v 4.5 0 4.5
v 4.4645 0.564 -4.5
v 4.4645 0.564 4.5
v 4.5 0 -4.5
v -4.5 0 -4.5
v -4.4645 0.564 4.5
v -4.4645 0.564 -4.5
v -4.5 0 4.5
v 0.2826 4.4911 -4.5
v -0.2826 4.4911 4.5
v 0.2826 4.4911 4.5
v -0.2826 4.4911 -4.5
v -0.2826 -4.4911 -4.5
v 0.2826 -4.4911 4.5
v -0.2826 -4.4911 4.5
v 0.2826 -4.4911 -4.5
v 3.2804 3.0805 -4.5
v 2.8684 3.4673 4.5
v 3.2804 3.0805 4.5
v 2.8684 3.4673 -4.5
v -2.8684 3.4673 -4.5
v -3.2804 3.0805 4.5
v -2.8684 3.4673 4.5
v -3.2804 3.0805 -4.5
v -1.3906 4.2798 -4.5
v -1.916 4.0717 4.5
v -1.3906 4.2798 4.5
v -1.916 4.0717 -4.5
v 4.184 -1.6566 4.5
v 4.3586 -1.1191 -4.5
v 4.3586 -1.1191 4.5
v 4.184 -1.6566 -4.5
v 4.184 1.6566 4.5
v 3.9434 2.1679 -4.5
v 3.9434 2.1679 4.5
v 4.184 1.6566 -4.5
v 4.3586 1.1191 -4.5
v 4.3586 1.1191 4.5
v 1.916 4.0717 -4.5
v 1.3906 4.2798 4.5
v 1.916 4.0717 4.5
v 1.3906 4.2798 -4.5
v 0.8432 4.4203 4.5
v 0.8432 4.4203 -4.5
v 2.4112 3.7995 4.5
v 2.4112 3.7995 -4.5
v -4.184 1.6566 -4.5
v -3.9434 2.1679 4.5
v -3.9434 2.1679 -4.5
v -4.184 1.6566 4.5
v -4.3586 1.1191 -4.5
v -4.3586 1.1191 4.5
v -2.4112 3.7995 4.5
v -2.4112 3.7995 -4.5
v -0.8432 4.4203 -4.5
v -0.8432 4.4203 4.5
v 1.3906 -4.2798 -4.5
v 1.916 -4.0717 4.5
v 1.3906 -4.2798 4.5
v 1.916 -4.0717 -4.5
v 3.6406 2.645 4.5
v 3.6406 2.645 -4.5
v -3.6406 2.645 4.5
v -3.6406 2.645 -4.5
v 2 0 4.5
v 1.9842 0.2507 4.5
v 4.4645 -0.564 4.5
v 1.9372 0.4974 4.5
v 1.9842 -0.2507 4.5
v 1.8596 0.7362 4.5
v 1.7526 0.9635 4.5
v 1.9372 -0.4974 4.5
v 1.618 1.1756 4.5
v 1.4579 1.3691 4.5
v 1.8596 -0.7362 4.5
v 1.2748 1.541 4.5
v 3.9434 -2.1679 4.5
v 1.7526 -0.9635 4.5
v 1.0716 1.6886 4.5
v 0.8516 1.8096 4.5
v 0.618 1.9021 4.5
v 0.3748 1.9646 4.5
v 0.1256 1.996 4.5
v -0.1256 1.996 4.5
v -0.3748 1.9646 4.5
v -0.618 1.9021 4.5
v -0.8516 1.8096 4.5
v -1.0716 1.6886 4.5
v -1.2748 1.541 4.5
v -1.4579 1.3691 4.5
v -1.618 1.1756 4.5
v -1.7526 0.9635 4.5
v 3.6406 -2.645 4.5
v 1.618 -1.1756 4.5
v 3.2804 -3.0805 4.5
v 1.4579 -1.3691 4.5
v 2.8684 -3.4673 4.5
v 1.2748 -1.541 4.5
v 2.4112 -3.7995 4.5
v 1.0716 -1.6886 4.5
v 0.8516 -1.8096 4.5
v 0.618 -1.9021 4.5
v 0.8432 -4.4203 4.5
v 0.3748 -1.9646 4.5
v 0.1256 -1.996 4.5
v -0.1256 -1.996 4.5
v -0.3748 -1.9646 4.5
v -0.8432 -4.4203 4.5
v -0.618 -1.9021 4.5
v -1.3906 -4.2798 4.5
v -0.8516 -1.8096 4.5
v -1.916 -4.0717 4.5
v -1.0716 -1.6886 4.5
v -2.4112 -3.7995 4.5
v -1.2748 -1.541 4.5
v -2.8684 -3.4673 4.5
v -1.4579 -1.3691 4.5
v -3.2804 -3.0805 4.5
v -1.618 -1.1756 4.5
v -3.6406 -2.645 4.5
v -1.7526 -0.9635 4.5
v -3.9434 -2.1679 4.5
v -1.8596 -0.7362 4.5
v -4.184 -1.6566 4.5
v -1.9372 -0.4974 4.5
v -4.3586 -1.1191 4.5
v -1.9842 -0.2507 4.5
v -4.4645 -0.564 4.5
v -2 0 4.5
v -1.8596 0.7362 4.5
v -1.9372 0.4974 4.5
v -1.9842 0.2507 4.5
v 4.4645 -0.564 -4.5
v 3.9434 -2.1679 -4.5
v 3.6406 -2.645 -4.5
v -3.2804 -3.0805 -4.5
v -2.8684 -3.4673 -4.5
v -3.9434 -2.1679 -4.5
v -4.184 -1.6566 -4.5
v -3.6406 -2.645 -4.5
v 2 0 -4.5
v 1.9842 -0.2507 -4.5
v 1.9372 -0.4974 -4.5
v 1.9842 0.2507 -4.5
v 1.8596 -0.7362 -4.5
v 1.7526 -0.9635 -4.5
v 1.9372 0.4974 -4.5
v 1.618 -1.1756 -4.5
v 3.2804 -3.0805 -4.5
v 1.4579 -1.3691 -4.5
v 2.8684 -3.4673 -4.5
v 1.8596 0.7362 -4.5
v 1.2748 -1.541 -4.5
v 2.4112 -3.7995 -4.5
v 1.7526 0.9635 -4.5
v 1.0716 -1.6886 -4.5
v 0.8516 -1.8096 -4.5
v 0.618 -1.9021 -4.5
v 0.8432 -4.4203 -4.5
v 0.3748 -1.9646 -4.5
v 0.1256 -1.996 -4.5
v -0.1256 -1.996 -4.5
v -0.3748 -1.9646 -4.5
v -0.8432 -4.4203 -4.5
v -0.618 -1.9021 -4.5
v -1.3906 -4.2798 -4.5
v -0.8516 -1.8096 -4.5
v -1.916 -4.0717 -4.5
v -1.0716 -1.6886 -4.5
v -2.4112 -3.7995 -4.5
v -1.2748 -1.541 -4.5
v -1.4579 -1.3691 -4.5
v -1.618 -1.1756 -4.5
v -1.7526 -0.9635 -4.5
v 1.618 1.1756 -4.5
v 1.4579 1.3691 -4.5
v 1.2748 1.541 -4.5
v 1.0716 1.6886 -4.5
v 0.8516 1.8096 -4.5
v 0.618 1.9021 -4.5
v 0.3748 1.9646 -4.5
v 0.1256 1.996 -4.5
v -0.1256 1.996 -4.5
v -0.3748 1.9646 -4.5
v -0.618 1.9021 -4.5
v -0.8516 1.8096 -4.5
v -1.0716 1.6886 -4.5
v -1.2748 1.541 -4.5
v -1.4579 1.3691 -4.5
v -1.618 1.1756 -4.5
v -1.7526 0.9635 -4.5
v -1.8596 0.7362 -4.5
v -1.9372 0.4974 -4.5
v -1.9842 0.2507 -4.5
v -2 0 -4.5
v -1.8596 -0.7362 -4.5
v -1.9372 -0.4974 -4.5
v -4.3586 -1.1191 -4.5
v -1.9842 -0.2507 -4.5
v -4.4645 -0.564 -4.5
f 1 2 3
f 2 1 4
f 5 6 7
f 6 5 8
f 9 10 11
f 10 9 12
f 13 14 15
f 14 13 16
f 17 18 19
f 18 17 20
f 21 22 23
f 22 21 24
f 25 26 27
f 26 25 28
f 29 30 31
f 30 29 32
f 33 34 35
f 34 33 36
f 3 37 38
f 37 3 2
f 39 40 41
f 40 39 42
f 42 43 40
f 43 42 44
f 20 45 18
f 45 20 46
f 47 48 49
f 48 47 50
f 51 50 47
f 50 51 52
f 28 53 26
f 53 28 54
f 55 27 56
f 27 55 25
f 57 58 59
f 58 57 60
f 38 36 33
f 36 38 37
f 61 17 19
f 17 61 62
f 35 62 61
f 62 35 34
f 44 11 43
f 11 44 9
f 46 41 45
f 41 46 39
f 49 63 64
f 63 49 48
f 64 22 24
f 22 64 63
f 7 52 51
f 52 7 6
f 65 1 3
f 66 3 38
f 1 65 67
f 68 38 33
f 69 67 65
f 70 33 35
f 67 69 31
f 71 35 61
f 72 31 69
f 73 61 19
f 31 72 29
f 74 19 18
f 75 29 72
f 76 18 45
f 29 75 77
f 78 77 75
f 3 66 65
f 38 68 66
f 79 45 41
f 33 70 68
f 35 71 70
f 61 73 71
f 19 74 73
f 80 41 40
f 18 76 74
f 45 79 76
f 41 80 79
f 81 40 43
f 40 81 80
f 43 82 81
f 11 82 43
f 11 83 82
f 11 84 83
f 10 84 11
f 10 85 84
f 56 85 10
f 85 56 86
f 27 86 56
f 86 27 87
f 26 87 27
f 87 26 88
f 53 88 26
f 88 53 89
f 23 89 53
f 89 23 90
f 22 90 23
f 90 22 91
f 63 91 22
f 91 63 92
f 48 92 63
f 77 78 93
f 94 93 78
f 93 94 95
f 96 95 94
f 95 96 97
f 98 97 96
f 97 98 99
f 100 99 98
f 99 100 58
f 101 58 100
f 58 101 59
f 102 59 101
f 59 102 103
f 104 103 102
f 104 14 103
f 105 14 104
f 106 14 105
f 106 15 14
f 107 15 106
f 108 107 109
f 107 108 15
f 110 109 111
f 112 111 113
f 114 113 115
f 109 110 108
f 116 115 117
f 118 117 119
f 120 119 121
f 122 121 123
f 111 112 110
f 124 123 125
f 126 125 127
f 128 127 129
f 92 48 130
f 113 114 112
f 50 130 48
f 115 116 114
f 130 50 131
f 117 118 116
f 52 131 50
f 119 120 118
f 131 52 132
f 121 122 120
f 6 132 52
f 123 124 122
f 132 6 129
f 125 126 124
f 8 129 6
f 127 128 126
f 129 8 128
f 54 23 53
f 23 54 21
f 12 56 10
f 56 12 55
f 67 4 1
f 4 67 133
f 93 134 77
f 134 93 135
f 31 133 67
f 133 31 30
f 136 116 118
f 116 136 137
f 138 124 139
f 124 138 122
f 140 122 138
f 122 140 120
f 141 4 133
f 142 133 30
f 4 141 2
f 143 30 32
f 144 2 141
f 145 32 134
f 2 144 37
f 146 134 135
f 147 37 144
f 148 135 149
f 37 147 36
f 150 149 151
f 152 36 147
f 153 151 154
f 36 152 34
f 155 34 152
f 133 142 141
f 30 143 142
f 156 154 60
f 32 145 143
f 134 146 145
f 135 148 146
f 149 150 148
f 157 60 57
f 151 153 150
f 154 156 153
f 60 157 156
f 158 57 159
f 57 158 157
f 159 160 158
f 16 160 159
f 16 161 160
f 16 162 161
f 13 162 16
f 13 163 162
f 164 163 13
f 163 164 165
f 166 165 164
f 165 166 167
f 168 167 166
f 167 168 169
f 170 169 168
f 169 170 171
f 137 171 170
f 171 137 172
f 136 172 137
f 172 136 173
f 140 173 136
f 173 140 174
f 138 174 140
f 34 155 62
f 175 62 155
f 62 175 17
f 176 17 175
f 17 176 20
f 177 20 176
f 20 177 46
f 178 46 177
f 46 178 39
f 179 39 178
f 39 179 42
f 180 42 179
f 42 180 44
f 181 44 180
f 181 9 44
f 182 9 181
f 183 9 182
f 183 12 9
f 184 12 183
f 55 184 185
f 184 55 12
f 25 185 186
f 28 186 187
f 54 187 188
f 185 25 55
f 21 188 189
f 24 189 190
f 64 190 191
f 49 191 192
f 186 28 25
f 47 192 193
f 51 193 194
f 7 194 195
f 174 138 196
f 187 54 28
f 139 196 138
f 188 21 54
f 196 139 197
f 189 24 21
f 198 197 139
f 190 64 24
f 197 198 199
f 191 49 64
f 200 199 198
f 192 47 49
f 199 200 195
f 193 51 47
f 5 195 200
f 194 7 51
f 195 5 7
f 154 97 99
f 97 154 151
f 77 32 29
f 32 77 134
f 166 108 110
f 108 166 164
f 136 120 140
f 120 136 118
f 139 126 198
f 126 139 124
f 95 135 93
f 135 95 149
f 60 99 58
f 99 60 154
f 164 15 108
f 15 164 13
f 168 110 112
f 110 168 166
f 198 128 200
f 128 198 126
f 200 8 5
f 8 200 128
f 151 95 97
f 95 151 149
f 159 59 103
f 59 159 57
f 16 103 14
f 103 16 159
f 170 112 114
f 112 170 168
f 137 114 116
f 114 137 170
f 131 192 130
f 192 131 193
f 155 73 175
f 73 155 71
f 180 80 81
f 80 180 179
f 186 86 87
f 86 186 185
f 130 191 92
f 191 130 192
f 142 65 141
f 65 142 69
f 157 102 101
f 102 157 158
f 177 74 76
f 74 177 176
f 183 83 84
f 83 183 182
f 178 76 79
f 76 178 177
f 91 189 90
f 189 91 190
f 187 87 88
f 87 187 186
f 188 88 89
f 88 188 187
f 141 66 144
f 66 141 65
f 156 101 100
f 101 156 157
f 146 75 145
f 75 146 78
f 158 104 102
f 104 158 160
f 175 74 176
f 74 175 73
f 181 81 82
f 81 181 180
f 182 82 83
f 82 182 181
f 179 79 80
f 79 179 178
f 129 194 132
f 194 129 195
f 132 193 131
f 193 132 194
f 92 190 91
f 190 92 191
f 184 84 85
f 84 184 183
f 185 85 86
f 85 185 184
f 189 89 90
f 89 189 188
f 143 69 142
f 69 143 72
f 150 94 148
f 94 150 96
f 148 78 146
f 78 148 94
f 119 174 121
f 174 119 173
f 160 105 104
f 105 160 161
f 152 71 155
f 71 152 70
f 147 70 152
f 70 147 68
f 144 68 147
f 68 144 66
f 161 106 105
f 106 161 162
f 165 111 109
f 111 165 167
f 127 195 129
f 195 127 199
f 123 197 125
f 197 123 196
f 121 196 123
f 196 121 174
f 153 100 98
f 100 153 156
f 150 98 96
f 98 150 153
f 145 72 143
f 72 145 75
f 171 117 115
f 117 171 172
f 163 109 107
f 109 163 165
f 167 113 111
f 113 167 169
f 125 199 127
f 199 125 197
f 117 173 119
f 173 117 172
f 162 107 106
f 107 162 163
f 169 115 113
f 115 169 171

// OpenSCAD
$fn = 50;


difference() {
	union() {
		translate(v = [0, 0, -4.5000000000]) {
			cylinder(h = 9, r = 4.5000000000);
		}
	}
	union() {
		translate(v = [0, 0, -100.0000000000]) {
			cylinder(h = 200, r = 2);
		}
	}
}
